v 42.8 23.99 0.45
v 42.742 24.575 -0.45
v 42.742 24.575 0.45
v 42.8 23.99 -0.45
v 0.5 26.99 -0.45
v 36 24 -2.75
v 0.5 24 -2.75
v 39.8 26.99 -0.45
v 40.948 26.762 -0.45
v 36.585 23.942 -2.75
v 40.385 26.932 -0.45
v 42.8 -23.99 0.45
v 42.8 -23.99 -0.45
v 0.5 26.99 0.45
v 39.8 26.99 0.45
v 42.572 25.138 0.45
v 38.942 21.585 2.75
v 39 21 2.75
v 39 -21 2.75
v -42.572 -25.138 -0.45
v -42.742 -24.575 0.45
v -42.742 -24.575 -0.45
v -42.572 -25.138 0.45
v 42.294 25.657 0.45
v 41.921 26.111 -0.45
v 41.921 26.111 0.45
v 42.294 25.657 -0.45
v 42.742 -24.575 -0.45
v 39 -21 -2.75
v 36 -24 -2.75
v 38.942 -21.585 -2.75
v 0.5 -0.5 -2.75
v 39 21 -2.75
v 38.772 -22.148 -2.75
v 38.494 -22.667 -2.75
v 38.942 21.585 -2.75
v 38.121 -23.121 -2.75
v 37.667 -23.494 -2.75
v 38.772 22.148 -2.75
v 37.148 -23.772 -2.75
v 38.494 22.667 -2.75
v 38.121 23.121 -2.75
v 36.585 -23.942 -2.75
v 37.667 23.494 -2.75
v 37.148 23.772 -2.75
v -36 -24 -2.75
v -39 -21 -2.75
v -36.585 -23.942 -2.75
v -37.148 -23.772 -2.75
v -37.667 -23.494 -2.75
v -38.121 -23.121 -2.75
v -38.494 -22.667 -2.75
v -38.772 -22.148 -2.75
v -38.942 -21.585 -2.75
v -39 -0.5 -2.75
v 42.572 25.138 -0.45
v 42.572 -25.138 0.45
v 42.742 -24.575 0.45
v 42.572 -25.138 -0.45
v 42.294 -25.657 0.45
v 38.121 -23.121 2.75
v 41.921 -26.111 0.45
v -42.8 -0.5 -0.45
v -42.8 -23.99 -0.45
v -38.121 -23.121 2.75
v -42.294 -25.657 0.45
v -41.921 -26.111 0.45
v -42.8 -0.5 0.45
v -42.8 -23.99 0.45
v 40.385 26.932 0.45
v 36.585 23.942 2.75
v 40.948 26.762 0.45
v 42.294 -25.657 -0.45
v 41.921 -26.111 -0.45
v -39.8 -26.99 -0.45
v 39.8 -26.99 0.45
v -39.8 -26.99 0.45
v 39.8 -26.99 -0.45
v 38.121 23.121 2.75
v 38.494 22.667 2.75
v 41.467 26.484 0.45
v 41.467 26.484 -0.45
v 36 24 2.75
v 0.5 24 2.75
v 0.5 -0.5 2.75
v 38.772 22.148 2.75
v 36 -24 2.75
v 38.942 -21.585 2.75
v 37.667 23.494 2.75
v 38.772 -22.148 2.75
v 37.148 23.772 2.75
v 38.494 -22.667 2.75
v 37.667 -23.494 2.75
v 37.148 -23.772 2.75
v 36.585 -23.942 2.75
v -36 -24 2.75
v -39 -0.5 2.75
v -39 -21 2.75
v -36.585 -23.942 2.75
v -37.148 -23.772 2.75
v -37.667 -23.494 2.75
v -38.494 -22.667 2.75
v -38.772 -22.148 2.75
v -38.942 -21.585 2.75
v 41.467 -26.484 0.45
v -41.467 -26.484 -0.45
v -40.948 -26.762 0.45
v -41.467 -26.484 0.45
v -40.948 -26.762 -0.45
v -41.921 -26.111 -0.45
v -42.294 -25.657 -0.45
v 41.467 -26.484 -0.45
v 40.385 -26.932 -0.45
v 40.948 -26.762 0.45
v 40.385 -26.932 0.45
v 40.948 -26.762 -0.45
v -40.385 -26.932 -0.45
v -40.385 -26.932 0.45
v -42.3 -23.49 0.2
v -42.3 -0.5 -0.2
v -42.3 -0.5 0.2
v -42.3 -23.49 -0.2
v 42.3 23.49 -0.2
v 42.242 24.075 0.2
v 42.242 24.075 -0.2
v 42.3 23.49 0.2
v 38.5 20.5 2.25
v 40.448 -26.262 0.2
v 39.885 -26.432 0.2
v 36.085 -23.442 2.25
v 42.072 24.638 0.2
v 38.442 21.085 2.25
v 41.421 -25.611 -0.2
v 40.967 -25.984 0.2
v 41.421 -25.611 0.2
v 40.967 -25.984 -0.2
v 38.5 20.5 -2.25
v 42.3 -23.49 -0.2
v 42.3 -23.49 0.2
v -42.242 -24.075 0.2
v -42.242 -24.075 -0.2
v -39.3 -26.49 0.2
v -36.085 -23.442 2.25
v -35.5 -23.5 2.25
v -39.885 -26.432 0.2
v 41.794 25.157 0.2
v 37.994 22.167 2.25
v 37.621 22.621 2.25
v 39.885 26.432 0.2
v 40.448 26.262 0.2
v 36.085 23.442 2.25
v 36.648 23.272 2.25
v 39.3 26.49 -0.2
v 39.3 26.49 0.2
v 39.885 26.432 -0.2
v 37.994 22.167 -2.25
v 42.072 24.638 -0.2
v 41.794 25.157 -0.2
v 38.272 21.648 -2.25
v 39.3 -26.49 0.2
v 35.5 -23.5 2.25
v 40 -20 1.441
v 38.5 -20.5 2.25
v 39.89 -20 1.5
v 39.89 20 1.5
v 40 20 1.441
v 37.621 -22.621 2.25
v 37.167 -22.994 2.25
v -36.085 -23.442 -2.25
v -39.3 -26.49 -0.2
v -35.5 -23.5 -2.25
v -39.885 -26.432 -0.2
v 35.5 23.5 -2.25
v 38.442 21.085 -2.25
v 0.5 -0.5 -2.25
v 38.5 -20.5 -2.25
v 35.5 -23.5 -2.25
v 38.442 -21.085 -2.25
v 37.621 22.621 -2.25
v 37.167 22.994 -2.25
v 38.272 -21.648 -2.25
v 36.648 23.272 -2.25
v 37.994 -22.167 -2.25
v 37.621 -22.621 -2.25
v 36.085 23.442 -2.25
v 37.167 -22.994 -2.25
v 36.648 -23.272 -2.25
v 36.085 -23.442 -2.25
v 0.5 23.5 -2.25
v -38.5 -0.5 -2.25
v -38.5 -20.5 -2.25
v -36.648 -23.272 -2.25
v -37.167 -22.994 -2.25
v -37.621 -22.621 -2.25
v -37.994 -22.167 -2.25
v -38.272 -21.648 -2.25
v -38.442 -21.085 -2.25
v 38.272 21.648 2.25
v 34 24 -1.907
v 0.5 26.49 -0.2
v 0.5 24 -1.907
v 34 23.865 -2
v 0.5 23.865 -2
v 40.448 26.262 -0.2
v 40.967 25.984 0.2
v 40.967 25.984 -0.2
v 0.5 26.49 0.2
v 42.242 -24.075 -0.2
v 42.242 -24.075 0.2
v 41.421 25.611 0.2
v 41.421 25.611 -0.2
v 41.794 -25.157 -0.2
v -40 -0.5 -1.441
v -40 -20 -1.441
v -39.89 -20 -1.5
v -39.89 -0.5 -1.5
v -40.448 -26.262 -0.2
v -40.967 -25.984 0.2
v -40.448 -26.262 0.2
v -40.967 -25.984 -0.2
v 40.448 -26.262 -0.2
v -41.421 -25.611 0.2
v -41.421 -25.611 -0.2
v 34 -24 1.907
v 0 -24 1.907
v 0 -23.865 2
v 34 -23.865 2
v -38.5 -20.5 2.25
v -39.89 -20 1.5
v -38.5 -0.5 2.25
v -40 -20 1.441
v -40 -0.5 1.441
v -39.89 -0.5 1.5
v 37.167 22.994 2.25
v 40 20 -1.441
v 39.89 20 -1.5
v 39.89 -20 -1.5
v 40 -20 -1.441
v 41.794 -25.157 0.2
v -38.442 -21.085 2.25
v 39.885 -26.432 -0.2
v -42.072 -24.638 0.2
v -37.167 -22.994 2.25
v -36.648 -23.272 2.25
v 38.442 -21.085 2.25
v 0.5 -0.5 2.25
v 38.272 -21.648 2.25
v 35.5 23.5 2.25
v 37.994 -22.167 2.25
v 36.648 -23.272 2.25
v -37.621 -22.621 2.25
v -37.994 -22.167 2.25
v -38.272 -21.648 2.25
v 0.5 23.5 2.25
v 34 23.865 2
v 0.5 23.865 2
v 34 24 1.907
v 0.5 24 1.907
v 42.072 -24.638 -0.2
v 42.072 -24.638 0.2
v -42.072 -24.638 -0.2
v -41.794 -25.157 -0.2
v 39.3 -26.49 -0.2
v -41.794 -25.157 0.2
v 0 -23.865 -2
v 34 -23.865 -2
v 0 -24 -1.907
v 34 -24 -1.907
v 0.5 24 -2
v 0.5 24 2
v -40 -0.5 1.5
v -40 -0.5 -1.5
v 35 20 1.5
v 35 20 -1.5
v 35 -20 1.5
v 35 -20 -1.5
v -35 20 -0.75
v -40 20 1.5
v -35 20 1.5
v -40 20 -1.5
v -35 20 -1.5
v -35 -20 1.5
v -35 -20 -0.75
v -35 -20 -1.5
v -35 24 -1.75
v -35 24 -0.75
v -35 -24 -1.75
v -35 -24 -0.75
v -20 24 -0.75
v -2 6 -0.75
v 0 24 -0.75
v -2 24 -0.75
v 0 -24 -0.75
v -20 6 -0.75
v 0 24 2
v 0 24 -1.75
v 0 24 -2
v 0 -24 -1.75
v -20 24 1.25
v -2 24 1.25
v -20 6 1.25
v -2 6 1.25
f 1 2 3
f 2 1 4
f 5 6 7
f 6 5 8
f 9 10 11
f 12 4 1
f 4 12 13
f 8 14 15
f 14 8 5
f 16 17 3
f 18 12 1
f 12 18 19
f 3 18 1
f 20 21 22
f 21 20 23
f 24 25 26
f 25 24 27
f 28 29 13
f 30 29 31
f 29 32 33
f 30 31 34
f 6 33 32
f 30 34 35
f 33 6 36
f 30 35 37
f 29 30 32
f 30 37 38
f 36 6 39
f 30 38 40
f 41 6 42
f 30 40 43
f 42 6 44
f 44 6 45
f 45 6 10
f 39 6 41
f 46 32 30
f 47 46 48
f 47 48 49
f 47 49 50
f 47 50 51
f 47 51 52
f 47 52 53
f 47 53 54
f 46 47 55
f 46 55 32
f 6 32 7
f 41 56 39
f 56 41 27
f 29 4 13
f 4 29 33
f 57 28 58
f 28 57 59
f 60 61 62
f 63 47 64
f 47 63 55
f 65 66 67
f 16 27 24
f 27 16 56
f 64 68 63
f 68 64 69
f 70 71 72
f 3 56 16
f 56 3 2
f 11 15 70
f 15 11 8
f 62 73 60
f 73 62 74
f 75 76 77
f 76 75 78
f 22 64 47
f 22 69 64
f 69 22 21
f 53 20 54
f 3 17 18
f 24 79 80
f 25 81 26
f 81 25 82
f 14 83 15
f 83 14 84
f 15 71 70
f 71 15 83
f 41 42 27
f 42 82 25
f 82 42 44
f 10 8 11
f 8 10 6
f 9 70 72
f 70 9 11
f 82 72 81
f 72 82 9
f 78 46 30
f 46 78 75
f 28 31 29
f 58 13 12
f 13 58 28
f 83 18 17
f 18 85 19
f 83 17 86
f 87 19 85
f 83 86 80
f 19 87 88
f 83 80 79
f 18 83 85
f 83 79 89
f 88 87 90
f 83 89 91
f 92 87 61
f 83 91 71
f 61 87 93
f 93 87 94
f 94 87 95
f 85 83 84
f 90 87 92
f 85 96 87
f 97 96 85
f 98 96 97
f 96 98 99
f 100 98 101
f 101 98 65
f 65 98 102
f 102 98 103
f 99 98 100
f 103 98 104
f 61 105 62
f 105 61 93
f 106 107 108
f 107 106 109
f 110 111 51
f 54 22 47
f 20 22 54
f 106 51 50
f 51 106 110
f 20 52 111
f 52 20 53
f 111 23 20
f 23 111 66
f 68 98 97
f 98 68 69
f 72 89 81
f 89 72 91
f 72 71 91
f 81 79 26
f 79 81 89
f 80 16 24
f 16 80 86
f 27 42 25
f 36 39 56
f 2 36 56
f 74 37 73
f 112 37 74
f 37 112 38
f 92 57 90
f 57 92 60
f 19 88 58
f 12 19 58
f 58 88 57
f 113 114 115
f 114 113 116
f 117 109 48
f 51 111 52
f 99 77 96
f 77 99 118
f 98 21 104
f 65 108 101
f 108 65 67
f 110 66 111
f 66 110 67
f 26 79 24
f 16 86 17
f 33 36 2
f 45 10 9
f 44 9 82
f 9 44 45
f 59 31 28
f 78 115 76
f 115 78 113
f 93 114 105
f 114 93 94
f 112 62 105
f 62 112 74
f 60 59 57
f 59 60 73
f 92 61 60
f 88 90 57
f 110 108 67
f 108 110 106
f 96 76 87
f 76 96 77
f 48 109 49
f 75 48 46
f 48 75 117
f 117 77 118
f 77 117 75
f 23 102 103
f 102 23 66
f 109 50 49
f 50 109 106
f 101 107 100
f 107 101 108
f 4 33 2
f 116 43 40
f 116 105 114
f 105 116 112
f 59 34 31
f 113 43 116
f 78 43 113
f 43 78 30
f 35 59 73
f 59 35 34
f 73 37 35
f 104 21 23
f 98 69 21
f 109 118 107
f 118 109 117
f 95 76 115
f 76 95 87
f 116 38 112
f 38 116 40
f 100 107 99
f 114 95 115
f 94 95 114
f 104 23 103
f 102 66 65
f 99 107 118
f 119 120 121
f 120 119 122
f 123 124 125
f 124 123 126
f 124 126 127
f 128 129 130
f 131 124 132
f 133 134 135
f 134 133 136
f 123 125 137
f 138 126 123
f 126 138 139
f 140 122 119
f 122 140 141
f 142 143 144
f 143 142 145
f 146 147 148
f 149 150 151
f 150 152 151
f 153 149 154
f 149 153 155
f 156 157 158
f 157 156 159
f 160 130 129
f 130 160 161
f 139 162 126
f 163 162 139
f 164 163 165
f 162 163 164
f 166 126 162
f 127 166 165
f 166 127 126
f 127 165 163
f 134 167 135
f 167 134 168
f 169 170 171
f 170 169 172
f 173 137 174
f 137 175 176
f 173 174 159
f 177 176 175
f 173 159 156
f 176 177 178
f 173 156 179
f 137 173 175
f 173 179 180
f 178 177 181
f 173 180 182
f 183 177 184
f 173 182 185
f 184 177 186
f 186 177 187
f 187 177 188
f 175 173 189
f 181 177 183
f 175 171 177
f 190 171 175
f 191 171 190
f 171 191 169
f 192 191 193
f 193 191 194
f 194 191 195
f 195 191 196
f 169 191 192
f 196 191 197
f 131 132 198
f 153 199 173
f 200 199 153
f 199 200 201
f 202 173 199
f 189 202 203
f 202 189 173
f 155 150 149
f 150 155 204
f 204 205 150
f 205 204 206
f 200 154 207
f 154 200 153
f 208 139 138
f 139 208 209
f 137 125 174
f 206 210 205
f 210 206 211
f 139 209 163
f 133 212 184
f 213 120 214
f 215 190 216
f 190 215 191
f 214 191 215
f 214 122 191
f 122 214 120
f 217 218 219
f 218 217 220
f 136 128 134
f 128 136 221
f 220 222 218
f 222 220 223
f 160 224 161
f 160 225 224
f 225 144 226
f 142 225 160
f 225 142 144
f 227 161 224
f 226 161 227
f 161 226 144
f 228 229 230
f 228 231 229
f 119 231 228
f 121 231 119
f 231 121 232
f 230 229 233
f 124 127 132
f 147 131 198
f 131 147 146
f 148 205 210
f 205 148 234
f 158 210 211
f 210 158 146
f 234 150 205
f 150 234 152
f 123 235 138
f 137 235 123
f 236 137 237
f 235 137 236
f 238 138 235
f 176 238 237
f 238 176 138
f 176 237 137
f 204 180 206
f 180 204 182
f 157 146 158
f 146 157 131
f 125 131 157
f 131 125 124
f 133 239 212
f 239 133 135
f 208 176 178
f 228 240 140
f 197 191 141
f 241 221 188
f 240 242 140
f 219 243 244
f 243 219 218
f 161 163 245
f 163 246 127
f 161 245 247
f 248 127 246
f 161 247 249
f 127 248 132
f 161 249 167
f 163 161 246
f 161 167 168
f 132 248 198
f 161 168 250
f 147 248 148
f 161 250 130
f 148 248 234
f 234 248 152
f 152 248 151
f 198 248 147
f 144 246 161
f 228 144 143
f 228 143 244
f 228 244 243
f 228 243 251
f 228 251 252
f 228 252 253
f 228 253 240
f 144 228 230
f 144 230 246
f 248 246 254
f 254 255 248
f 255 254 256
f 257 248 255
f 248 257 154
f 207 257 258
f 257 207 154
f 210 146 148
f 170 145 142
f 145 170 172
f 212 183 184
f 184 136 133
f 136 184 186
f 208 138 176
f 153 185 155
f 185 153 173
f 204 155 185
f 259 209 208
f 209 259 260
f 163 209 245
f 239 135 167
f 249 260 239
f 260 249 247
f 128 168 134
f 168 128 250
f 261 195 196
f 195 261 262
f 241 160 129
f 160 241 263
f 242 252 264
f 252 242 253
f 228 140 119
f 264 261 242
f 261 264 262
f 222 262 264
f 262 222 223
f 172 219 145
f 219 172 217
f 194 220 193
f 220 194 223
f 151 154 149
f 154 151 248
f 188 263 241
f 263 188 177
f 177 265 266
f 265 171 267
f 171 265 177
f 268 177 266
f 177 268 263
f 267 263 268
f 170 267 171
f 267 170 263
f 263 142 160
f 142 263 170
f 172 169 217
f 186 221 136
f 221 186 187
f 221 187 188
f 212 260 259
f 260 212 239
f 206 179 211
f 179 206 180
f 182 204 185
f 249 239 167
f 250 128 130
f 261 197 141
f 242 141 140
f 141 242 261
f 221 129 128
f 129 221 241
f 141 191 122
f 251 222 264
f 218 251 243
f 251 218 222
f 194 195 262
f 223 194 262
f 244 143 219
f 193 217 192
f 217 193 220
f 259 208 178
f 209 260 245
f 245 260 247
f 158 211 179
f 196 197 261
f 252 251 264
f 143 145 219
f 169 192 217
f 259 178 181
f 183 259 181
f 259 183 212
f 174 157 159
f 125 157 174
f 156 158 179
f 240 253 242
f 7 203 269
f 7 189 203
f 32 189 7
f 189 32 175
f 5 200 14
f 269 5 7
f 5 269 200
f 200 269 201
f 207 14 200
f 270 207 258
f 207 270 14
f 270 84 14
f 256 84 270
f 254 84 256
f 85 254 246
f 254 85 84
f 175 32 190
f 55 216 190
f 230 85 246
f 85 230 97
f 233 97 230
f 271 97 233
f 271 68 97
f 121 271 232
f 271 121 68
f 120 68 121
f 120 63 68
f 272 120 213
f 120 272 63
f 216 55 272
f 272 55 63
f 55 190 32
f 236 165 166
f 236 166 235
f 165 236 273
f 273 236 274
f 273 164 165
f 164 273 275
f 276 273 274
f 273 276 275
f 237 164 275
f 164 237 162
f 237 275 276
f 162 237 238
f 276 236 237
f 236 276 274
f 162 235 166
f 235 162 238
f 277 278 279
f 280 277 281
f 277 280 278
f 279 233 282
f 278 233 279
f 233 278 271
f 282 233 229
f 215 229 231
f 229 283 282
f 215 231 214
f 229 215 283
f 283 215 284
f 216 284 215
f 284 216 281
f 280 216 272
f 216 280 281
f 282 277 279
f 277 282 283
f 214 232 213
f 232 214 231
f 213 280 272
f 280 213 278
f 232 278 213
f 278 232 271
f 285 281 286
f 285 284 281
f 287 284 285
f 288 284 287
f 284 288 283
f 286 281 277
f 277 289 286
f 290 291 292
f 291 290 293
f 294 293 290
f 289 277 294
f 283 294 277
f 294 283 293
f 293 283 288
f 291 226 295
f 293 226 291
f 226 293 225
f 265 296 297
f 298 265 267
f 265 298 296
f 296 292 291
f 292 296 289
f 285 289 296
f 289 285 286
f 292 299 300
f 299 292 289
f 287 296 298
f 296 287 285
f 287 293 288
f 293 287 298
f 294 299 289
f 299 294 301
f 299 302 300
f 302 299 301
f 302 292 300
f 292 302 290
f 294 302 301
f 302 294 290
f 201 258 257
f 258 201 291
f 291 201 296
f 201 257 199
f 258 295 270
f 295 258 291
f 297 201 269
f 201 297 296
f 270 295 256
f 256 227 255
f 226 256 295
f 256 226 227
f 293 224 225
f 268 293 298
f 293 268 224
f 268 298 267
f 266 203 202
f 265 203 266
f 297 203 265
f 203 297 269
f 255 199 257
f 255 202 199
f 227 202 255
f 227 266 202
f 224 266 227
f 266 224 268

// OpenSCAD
$fn = 32;

W = 85.60;
H = 53.98;
T =  0.90;
R =  3.00; // 2.88..3.48

Wp = 78.00;
Hp = 48.00;
Tp = 5.50;

wt = 0.5;

if(1) {
  difference() {

    hull() {
      translate([ W/2 - R,  H/2 - R, 0]) cylinder(r=R, h=T, center=true);
      translate([-W/2 + R,  H/2 - R, 0]) cylinder(r=R, h=T, center=true);
      translate([ W/2 - R, -H/2 + R, 0]) cylinder(r=R, h=T, center=true);
      translate([-W/2 + R, -H/2 + R, 0]) cylinder(r=R, h=T, center=true);

      translate([ Wp/2 - R,  Hp/2 - R, 0]) cylinder(r=R, h=Tp, center=true);
      translate([-Wp/2 + R,  Hp/2 - R, 0]) cylinder(r=R, h=Tp, center=true);
      translate([ Wp/2 - R, -Hp/2 + R, 0]) cylinder(r=R, h=Tp, center=true);
      translate([-Wp/2 + R, -Hp/2 + R, 0]) cylinder(r=R, h=Tp, center=true);
    }


    hull(){
      translate([ W/2 - R - wt,  H/2 - R - wt, 0]) cylinder(r=R, h=T - wt, center=true);
      translate([-W/2 + R + wt,  H/2 - R - wt, 0]) cylinder(r=R, h=T - wt, center=true);
      translate([ W/2 - R - wt, -H/2 + R + wt, 0]) cylinder(r=R, h=T - wt, center=true);
      translate([-W/2 + R + wt, -H/2 + R + wt, 0]) cylinder(r=R, h=T - wt, center=true);

      translate([ Wp/2 - R - wt,  Hp/2 - R - wt, 0]) cylinder(r=R, h=Tp - wt*2, center=true);
      translate([-Wp/2 + R + wt,  Hp/2 - R - wt, 0]) cylinder(r=R, h=Tp - wt*2, center=true);
      translate([ Wp/2 - R - wt, -Hp/2 + R + wt, 0]) cylinder(r=R, h=Tp - wt*2, center=true);
      translate([-Wp/2 + R + wt, -Hp/2 + R + wt, 0]) cylinder(r=R, h=Tp - wt*2, center=true);

    }
    translate([-W/2, H/2, 0]) cube([W+1, H+1, Tp+1], center=true);
  }

}

// Магнит
color("Silver") translate([ 75/2, 0, 0]) rotate([0,0,90]) cube([40, 5, 3], center=true);
color("Silver") translate([-75/2, 0, 0]) rotate([0,0,90]) cube([40, 5, 3], center=true);

// PCB

color("Green") translate([-35/2, 0, -1.25]) cube([35, 48, 1.0], center=true);
color("Grey") translate([-11, 15, 0.25]) cube([18, 18, 2.0], center=true);

// Аккумулятор
color("Silver") translate([34/2, 0, 0]) rotate([0,0,90]) cube([48, 34, 4.0], center=true);


/*translate([0,0,0]) cube([W, H, T], center=true);*/

/*hull() {
  translate([0,0,8]) cube([18,18,4], center=true);
  translate([20,0,0]) cylinder(d=10,h=10,center=true);
  translate([-20,0,0]) cylinder(d=10,h=10,center=true);
}*/
